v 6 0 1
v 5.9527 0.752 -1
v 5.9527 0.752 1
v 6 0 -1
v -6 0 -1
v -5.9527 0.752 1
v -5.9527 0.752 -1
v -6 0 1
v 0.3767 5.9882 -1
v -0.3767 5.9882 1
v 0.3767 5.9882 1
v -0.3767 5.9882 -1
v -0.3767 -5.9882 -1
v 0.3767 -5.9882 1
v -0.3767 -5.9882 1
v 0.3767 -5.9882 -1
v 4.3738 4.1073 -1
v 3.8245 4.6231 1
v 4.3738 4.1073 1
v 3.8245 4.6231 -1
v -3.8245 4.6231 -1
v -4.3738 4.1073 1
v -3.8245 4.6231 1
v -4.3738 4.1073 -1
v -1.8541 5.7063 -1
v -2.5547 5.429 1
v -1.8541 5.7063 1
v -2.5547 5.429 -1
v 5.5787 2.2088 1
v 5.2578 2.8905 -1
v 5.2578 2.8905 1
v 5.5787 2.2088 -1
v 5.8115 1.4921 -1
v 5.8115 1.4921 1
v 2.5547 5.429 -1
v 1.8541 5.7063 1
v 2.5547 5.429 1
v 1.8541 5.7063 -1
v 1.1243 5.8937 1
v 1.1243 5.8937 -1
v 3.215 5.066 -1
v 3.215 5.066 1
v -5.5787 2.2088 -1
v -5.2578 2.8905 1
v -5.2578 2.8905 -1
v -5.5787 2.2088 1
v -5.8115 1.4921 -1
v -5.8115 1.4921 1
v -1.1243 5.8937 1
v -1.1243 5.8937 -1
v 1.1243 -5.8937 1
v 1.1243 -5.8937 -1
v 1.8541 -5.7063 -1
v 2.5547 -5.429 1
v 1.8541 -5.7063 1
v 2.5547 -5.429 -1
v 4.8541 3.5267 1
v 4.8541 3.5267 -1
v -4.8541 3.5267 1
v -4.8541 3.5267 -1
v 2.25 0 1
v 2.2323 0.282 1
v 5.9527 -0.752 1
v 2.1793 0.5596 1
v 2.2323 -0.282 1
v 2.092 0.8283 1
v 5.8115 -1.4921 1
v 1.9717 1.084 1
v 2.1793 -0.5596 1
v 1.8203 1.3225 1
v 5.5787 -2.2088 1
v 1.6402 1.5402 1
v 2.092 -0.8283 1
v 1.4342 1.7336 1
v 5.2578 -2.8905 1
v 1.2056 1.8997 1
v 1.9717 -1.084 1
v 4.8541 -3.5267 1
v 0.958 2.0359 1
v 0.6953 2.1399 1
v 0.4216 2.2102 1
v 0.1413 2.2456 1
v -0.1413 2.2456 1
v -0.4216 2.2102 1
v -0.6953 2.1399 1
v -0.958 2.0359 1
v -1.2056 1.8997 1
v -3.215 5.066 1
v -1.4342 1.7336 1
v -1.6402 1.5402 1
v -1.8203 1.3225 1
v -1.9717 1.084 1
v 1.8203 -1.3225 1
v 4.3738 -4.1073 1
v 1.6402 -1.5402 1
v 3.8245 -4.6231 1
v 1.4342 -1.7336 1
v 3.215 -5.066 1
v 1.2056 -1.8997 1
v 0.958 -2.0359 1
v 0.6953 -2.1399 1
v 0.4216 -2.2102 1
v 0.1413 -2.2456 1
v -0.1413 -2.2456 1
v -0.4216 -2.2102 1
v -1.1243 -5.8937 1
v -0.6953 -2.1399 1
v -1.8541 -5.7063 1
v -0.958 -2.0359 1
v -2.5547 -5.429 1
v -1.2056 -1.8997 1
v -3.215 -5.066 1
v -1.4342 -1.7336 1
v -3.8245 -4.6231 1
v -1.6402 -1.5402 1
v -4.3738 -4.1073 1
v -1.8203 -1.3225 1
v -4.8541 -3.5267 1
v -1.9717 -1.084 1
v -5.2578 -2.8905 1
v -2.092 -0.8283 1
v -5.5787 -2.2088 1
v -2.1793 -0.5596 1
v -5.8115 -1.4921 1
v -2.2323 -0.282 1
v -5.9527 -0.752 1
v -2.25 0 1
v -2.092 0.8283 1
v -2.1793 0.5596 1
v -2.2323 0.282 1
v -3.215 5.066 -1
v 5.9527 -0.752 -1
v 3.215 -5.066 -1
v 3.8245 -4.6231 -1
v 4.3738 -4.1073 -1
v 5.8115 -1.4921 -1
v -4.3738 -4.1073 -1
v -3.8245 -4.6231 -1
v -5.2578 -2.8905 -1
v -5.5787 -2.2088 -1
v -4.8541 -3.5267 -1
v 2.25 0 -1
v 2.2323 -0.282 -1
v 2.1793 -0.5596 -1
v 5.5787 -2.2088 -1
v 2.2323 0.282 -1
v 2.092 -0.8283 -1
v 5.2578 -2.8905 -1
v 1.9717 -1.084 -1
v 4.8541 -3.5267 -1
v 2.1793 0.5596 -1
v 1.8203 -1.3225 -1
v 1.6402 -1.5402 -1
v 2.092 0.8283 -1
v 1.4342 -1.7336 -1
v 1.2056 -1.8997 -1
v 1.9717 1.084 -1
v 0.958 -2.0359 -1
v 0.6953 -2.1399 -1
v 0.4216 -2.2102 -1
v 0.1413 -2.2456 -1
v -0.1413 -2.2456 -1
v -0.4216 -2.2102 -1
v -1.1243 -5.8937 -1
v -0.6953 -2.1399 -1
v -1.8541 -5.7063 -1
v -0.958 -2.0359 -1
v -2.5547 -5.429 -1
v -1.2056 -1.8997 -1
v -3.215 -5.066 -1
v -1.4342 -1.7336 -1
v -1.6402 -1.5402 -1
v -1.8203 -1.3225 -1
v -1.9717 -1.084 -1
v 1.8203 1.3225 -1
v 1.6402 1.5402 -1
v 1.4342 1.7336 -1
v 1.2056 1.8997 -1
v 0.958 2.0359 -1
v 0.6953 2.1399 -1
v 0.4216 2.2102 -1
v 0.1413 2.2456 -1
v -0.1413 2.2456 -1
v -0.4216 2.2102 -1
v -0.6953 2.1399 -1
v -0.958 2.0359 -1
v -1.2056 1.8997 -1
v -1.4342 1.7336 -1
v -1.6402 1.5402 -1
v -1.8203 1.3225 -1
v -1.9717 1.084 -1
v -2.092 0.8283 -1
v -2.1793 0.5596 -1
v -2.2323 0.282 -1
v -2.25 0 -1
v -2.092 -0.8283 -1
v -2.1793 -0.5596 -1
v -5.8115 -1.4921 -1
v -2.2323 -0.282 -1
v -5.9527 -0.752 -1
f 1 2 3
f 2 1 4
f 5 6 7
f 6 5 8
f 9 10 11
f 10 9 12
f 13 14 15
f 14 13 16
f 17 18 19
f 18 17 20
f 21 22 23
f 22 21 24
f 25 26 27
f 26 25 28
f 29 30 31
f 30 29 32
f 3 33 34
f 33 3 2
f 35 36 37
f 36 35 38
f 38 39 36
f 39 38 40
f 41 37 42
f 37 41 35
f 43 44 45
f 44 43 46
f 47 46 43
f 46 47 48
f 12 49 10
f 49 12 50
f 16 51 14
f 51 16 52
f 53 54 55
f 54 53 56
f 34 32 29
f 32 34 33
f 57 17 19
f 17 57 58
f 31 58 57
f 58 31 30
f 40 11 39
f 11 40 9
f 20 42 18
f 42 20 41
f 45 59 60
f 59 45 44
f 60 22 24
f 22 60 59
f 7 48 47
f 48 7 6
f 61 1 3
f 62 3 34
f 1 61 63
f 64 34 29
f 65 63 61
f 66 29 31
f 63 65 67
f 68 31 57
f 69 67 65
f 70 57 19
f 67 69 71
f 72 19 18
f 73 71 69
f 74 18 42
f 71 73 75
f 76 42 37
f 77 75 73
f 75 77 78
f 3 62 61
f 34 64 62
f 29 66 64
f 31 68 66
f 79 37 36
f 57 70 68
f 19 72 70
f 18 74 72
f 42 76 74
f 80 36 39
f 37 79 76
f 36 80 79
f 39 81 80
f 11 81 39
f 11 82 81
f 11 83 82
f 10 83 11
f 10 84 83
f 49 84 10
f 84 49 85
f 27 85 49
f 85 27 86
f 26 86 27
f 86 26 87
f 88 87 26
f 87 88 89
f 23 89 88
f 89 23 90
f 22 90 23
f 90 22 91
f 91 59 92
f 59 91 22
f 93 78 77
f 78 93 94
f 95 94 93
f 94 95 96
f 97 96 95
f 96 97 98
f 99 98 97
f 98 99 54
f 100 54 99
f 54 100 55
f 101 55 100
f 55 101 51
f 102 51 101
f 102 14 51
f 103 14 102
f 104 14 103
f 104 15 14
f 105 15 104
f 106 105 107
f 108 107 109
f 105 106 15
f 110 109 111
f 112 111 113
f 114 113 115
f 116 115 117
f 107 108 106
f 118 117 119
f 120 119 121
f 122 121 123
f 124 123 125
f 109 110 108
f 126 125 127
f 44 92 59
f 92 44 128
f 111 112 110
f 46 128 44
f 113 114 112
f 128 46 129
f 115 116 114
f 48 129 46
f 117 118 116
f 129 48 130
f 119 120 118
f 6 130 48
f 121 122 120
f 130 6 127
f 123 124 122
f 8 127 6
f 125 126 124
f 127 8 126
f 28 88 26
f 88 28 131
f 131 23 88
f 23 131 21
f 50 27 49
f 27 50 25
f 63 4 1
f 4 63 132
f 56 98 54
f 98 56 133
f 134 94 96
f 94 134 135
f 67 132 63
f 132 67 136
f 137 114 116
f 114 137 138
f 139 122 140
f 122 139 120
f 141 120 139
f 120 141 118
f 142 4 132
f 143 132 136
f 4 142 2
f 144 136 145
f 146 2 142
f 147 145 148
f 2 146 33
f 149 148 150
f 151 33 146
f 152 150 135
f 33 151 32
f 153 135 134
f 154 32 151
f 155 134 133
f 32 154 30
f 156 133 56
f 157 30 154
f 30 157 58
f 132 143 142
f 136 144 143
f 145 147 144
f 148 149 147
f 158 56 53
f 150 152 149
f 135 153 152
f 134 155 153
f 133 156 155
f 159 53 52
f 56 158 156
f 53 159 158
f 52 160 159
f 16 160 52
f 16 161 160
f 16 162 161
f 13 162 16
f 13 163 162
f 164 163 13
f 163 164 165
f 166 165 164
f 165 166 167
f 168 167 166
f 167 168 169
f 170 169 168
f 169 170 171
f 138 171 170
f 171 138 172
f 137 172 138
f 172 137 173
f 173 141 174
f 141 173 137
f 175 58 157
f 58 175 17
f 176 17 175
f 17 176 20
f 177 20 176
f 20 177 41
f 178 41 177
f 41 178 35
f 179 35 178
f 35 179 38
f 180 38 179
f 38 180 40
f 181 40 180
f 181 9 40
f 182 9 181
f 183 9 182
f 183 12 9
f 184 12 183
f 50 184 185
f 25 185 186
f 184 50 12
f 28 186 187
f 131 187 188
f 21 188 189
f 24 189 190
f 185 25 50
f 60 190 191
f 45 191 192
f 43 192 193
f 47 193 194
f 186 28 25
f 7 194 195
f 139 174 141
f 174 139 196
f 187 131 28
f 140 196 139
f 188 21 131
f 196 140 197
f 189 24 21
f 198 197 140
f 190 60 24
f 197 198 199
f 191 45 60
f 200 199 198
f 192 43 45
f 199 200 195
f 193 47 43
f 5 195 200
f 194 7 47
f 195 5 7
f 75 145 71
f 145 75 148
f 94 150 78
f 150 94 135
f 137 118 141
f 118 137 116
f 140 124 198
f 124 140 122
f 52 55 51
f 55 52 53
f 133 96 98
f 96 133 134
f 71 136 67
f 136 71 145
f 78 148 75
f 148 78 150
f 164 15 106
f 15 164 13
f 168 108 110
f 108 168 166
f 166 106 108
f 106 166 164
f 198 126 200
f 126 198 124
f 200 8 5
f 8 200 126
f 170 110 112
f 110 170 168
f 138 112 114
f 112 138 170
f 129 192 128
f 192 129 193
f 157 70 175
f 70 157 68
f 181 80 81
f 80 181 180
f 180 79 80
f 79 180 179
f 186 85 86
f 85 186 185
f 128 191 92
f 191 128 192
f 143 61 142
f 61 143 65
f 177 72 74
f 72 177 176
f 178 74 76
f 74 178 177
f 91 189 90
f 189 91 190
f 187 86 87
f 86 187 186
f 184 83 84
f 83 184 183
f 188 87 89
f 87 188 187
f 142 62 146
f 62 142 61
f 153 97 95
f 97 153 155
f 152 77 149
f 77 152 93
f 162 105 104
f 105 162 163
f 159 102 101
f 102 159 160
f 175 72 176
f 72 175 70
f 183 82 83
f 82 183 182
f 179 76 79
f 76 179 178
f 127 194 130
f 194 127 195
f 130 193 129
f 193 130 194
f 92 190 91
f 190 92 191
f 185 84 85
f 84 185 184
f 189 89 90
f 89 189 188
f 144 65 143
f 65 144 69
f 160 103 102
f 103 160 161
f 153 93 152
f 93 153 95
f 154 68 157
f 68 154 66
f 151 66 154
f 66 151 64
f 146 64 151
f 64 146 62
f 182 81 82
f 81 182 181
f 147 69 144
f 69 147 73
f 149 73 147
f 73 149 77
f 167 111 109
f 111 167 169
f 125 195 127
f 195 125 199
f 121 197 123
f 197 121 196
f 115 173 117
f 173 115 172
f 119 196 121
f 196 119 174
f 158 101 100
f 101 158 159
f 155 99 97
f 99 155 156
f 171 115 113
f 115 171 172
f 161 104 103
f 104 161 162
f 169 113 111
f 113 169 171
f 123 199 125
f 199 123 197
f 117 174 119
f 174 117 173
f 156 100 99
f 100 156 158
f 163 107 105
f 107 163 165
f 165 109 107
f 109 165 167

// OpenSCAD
$fn = 50;


difference() {
	union() {
		translate(v = [0, 0, -1.0000000000]) {
			cylinder(h = 2, r = 6.0000000000);
		}
	}
	union() {
		translate(v = [0, 0, -100.0000000000]) {
			cylinder(h = 200, r = 2.2500000000);
		}
	}
}
